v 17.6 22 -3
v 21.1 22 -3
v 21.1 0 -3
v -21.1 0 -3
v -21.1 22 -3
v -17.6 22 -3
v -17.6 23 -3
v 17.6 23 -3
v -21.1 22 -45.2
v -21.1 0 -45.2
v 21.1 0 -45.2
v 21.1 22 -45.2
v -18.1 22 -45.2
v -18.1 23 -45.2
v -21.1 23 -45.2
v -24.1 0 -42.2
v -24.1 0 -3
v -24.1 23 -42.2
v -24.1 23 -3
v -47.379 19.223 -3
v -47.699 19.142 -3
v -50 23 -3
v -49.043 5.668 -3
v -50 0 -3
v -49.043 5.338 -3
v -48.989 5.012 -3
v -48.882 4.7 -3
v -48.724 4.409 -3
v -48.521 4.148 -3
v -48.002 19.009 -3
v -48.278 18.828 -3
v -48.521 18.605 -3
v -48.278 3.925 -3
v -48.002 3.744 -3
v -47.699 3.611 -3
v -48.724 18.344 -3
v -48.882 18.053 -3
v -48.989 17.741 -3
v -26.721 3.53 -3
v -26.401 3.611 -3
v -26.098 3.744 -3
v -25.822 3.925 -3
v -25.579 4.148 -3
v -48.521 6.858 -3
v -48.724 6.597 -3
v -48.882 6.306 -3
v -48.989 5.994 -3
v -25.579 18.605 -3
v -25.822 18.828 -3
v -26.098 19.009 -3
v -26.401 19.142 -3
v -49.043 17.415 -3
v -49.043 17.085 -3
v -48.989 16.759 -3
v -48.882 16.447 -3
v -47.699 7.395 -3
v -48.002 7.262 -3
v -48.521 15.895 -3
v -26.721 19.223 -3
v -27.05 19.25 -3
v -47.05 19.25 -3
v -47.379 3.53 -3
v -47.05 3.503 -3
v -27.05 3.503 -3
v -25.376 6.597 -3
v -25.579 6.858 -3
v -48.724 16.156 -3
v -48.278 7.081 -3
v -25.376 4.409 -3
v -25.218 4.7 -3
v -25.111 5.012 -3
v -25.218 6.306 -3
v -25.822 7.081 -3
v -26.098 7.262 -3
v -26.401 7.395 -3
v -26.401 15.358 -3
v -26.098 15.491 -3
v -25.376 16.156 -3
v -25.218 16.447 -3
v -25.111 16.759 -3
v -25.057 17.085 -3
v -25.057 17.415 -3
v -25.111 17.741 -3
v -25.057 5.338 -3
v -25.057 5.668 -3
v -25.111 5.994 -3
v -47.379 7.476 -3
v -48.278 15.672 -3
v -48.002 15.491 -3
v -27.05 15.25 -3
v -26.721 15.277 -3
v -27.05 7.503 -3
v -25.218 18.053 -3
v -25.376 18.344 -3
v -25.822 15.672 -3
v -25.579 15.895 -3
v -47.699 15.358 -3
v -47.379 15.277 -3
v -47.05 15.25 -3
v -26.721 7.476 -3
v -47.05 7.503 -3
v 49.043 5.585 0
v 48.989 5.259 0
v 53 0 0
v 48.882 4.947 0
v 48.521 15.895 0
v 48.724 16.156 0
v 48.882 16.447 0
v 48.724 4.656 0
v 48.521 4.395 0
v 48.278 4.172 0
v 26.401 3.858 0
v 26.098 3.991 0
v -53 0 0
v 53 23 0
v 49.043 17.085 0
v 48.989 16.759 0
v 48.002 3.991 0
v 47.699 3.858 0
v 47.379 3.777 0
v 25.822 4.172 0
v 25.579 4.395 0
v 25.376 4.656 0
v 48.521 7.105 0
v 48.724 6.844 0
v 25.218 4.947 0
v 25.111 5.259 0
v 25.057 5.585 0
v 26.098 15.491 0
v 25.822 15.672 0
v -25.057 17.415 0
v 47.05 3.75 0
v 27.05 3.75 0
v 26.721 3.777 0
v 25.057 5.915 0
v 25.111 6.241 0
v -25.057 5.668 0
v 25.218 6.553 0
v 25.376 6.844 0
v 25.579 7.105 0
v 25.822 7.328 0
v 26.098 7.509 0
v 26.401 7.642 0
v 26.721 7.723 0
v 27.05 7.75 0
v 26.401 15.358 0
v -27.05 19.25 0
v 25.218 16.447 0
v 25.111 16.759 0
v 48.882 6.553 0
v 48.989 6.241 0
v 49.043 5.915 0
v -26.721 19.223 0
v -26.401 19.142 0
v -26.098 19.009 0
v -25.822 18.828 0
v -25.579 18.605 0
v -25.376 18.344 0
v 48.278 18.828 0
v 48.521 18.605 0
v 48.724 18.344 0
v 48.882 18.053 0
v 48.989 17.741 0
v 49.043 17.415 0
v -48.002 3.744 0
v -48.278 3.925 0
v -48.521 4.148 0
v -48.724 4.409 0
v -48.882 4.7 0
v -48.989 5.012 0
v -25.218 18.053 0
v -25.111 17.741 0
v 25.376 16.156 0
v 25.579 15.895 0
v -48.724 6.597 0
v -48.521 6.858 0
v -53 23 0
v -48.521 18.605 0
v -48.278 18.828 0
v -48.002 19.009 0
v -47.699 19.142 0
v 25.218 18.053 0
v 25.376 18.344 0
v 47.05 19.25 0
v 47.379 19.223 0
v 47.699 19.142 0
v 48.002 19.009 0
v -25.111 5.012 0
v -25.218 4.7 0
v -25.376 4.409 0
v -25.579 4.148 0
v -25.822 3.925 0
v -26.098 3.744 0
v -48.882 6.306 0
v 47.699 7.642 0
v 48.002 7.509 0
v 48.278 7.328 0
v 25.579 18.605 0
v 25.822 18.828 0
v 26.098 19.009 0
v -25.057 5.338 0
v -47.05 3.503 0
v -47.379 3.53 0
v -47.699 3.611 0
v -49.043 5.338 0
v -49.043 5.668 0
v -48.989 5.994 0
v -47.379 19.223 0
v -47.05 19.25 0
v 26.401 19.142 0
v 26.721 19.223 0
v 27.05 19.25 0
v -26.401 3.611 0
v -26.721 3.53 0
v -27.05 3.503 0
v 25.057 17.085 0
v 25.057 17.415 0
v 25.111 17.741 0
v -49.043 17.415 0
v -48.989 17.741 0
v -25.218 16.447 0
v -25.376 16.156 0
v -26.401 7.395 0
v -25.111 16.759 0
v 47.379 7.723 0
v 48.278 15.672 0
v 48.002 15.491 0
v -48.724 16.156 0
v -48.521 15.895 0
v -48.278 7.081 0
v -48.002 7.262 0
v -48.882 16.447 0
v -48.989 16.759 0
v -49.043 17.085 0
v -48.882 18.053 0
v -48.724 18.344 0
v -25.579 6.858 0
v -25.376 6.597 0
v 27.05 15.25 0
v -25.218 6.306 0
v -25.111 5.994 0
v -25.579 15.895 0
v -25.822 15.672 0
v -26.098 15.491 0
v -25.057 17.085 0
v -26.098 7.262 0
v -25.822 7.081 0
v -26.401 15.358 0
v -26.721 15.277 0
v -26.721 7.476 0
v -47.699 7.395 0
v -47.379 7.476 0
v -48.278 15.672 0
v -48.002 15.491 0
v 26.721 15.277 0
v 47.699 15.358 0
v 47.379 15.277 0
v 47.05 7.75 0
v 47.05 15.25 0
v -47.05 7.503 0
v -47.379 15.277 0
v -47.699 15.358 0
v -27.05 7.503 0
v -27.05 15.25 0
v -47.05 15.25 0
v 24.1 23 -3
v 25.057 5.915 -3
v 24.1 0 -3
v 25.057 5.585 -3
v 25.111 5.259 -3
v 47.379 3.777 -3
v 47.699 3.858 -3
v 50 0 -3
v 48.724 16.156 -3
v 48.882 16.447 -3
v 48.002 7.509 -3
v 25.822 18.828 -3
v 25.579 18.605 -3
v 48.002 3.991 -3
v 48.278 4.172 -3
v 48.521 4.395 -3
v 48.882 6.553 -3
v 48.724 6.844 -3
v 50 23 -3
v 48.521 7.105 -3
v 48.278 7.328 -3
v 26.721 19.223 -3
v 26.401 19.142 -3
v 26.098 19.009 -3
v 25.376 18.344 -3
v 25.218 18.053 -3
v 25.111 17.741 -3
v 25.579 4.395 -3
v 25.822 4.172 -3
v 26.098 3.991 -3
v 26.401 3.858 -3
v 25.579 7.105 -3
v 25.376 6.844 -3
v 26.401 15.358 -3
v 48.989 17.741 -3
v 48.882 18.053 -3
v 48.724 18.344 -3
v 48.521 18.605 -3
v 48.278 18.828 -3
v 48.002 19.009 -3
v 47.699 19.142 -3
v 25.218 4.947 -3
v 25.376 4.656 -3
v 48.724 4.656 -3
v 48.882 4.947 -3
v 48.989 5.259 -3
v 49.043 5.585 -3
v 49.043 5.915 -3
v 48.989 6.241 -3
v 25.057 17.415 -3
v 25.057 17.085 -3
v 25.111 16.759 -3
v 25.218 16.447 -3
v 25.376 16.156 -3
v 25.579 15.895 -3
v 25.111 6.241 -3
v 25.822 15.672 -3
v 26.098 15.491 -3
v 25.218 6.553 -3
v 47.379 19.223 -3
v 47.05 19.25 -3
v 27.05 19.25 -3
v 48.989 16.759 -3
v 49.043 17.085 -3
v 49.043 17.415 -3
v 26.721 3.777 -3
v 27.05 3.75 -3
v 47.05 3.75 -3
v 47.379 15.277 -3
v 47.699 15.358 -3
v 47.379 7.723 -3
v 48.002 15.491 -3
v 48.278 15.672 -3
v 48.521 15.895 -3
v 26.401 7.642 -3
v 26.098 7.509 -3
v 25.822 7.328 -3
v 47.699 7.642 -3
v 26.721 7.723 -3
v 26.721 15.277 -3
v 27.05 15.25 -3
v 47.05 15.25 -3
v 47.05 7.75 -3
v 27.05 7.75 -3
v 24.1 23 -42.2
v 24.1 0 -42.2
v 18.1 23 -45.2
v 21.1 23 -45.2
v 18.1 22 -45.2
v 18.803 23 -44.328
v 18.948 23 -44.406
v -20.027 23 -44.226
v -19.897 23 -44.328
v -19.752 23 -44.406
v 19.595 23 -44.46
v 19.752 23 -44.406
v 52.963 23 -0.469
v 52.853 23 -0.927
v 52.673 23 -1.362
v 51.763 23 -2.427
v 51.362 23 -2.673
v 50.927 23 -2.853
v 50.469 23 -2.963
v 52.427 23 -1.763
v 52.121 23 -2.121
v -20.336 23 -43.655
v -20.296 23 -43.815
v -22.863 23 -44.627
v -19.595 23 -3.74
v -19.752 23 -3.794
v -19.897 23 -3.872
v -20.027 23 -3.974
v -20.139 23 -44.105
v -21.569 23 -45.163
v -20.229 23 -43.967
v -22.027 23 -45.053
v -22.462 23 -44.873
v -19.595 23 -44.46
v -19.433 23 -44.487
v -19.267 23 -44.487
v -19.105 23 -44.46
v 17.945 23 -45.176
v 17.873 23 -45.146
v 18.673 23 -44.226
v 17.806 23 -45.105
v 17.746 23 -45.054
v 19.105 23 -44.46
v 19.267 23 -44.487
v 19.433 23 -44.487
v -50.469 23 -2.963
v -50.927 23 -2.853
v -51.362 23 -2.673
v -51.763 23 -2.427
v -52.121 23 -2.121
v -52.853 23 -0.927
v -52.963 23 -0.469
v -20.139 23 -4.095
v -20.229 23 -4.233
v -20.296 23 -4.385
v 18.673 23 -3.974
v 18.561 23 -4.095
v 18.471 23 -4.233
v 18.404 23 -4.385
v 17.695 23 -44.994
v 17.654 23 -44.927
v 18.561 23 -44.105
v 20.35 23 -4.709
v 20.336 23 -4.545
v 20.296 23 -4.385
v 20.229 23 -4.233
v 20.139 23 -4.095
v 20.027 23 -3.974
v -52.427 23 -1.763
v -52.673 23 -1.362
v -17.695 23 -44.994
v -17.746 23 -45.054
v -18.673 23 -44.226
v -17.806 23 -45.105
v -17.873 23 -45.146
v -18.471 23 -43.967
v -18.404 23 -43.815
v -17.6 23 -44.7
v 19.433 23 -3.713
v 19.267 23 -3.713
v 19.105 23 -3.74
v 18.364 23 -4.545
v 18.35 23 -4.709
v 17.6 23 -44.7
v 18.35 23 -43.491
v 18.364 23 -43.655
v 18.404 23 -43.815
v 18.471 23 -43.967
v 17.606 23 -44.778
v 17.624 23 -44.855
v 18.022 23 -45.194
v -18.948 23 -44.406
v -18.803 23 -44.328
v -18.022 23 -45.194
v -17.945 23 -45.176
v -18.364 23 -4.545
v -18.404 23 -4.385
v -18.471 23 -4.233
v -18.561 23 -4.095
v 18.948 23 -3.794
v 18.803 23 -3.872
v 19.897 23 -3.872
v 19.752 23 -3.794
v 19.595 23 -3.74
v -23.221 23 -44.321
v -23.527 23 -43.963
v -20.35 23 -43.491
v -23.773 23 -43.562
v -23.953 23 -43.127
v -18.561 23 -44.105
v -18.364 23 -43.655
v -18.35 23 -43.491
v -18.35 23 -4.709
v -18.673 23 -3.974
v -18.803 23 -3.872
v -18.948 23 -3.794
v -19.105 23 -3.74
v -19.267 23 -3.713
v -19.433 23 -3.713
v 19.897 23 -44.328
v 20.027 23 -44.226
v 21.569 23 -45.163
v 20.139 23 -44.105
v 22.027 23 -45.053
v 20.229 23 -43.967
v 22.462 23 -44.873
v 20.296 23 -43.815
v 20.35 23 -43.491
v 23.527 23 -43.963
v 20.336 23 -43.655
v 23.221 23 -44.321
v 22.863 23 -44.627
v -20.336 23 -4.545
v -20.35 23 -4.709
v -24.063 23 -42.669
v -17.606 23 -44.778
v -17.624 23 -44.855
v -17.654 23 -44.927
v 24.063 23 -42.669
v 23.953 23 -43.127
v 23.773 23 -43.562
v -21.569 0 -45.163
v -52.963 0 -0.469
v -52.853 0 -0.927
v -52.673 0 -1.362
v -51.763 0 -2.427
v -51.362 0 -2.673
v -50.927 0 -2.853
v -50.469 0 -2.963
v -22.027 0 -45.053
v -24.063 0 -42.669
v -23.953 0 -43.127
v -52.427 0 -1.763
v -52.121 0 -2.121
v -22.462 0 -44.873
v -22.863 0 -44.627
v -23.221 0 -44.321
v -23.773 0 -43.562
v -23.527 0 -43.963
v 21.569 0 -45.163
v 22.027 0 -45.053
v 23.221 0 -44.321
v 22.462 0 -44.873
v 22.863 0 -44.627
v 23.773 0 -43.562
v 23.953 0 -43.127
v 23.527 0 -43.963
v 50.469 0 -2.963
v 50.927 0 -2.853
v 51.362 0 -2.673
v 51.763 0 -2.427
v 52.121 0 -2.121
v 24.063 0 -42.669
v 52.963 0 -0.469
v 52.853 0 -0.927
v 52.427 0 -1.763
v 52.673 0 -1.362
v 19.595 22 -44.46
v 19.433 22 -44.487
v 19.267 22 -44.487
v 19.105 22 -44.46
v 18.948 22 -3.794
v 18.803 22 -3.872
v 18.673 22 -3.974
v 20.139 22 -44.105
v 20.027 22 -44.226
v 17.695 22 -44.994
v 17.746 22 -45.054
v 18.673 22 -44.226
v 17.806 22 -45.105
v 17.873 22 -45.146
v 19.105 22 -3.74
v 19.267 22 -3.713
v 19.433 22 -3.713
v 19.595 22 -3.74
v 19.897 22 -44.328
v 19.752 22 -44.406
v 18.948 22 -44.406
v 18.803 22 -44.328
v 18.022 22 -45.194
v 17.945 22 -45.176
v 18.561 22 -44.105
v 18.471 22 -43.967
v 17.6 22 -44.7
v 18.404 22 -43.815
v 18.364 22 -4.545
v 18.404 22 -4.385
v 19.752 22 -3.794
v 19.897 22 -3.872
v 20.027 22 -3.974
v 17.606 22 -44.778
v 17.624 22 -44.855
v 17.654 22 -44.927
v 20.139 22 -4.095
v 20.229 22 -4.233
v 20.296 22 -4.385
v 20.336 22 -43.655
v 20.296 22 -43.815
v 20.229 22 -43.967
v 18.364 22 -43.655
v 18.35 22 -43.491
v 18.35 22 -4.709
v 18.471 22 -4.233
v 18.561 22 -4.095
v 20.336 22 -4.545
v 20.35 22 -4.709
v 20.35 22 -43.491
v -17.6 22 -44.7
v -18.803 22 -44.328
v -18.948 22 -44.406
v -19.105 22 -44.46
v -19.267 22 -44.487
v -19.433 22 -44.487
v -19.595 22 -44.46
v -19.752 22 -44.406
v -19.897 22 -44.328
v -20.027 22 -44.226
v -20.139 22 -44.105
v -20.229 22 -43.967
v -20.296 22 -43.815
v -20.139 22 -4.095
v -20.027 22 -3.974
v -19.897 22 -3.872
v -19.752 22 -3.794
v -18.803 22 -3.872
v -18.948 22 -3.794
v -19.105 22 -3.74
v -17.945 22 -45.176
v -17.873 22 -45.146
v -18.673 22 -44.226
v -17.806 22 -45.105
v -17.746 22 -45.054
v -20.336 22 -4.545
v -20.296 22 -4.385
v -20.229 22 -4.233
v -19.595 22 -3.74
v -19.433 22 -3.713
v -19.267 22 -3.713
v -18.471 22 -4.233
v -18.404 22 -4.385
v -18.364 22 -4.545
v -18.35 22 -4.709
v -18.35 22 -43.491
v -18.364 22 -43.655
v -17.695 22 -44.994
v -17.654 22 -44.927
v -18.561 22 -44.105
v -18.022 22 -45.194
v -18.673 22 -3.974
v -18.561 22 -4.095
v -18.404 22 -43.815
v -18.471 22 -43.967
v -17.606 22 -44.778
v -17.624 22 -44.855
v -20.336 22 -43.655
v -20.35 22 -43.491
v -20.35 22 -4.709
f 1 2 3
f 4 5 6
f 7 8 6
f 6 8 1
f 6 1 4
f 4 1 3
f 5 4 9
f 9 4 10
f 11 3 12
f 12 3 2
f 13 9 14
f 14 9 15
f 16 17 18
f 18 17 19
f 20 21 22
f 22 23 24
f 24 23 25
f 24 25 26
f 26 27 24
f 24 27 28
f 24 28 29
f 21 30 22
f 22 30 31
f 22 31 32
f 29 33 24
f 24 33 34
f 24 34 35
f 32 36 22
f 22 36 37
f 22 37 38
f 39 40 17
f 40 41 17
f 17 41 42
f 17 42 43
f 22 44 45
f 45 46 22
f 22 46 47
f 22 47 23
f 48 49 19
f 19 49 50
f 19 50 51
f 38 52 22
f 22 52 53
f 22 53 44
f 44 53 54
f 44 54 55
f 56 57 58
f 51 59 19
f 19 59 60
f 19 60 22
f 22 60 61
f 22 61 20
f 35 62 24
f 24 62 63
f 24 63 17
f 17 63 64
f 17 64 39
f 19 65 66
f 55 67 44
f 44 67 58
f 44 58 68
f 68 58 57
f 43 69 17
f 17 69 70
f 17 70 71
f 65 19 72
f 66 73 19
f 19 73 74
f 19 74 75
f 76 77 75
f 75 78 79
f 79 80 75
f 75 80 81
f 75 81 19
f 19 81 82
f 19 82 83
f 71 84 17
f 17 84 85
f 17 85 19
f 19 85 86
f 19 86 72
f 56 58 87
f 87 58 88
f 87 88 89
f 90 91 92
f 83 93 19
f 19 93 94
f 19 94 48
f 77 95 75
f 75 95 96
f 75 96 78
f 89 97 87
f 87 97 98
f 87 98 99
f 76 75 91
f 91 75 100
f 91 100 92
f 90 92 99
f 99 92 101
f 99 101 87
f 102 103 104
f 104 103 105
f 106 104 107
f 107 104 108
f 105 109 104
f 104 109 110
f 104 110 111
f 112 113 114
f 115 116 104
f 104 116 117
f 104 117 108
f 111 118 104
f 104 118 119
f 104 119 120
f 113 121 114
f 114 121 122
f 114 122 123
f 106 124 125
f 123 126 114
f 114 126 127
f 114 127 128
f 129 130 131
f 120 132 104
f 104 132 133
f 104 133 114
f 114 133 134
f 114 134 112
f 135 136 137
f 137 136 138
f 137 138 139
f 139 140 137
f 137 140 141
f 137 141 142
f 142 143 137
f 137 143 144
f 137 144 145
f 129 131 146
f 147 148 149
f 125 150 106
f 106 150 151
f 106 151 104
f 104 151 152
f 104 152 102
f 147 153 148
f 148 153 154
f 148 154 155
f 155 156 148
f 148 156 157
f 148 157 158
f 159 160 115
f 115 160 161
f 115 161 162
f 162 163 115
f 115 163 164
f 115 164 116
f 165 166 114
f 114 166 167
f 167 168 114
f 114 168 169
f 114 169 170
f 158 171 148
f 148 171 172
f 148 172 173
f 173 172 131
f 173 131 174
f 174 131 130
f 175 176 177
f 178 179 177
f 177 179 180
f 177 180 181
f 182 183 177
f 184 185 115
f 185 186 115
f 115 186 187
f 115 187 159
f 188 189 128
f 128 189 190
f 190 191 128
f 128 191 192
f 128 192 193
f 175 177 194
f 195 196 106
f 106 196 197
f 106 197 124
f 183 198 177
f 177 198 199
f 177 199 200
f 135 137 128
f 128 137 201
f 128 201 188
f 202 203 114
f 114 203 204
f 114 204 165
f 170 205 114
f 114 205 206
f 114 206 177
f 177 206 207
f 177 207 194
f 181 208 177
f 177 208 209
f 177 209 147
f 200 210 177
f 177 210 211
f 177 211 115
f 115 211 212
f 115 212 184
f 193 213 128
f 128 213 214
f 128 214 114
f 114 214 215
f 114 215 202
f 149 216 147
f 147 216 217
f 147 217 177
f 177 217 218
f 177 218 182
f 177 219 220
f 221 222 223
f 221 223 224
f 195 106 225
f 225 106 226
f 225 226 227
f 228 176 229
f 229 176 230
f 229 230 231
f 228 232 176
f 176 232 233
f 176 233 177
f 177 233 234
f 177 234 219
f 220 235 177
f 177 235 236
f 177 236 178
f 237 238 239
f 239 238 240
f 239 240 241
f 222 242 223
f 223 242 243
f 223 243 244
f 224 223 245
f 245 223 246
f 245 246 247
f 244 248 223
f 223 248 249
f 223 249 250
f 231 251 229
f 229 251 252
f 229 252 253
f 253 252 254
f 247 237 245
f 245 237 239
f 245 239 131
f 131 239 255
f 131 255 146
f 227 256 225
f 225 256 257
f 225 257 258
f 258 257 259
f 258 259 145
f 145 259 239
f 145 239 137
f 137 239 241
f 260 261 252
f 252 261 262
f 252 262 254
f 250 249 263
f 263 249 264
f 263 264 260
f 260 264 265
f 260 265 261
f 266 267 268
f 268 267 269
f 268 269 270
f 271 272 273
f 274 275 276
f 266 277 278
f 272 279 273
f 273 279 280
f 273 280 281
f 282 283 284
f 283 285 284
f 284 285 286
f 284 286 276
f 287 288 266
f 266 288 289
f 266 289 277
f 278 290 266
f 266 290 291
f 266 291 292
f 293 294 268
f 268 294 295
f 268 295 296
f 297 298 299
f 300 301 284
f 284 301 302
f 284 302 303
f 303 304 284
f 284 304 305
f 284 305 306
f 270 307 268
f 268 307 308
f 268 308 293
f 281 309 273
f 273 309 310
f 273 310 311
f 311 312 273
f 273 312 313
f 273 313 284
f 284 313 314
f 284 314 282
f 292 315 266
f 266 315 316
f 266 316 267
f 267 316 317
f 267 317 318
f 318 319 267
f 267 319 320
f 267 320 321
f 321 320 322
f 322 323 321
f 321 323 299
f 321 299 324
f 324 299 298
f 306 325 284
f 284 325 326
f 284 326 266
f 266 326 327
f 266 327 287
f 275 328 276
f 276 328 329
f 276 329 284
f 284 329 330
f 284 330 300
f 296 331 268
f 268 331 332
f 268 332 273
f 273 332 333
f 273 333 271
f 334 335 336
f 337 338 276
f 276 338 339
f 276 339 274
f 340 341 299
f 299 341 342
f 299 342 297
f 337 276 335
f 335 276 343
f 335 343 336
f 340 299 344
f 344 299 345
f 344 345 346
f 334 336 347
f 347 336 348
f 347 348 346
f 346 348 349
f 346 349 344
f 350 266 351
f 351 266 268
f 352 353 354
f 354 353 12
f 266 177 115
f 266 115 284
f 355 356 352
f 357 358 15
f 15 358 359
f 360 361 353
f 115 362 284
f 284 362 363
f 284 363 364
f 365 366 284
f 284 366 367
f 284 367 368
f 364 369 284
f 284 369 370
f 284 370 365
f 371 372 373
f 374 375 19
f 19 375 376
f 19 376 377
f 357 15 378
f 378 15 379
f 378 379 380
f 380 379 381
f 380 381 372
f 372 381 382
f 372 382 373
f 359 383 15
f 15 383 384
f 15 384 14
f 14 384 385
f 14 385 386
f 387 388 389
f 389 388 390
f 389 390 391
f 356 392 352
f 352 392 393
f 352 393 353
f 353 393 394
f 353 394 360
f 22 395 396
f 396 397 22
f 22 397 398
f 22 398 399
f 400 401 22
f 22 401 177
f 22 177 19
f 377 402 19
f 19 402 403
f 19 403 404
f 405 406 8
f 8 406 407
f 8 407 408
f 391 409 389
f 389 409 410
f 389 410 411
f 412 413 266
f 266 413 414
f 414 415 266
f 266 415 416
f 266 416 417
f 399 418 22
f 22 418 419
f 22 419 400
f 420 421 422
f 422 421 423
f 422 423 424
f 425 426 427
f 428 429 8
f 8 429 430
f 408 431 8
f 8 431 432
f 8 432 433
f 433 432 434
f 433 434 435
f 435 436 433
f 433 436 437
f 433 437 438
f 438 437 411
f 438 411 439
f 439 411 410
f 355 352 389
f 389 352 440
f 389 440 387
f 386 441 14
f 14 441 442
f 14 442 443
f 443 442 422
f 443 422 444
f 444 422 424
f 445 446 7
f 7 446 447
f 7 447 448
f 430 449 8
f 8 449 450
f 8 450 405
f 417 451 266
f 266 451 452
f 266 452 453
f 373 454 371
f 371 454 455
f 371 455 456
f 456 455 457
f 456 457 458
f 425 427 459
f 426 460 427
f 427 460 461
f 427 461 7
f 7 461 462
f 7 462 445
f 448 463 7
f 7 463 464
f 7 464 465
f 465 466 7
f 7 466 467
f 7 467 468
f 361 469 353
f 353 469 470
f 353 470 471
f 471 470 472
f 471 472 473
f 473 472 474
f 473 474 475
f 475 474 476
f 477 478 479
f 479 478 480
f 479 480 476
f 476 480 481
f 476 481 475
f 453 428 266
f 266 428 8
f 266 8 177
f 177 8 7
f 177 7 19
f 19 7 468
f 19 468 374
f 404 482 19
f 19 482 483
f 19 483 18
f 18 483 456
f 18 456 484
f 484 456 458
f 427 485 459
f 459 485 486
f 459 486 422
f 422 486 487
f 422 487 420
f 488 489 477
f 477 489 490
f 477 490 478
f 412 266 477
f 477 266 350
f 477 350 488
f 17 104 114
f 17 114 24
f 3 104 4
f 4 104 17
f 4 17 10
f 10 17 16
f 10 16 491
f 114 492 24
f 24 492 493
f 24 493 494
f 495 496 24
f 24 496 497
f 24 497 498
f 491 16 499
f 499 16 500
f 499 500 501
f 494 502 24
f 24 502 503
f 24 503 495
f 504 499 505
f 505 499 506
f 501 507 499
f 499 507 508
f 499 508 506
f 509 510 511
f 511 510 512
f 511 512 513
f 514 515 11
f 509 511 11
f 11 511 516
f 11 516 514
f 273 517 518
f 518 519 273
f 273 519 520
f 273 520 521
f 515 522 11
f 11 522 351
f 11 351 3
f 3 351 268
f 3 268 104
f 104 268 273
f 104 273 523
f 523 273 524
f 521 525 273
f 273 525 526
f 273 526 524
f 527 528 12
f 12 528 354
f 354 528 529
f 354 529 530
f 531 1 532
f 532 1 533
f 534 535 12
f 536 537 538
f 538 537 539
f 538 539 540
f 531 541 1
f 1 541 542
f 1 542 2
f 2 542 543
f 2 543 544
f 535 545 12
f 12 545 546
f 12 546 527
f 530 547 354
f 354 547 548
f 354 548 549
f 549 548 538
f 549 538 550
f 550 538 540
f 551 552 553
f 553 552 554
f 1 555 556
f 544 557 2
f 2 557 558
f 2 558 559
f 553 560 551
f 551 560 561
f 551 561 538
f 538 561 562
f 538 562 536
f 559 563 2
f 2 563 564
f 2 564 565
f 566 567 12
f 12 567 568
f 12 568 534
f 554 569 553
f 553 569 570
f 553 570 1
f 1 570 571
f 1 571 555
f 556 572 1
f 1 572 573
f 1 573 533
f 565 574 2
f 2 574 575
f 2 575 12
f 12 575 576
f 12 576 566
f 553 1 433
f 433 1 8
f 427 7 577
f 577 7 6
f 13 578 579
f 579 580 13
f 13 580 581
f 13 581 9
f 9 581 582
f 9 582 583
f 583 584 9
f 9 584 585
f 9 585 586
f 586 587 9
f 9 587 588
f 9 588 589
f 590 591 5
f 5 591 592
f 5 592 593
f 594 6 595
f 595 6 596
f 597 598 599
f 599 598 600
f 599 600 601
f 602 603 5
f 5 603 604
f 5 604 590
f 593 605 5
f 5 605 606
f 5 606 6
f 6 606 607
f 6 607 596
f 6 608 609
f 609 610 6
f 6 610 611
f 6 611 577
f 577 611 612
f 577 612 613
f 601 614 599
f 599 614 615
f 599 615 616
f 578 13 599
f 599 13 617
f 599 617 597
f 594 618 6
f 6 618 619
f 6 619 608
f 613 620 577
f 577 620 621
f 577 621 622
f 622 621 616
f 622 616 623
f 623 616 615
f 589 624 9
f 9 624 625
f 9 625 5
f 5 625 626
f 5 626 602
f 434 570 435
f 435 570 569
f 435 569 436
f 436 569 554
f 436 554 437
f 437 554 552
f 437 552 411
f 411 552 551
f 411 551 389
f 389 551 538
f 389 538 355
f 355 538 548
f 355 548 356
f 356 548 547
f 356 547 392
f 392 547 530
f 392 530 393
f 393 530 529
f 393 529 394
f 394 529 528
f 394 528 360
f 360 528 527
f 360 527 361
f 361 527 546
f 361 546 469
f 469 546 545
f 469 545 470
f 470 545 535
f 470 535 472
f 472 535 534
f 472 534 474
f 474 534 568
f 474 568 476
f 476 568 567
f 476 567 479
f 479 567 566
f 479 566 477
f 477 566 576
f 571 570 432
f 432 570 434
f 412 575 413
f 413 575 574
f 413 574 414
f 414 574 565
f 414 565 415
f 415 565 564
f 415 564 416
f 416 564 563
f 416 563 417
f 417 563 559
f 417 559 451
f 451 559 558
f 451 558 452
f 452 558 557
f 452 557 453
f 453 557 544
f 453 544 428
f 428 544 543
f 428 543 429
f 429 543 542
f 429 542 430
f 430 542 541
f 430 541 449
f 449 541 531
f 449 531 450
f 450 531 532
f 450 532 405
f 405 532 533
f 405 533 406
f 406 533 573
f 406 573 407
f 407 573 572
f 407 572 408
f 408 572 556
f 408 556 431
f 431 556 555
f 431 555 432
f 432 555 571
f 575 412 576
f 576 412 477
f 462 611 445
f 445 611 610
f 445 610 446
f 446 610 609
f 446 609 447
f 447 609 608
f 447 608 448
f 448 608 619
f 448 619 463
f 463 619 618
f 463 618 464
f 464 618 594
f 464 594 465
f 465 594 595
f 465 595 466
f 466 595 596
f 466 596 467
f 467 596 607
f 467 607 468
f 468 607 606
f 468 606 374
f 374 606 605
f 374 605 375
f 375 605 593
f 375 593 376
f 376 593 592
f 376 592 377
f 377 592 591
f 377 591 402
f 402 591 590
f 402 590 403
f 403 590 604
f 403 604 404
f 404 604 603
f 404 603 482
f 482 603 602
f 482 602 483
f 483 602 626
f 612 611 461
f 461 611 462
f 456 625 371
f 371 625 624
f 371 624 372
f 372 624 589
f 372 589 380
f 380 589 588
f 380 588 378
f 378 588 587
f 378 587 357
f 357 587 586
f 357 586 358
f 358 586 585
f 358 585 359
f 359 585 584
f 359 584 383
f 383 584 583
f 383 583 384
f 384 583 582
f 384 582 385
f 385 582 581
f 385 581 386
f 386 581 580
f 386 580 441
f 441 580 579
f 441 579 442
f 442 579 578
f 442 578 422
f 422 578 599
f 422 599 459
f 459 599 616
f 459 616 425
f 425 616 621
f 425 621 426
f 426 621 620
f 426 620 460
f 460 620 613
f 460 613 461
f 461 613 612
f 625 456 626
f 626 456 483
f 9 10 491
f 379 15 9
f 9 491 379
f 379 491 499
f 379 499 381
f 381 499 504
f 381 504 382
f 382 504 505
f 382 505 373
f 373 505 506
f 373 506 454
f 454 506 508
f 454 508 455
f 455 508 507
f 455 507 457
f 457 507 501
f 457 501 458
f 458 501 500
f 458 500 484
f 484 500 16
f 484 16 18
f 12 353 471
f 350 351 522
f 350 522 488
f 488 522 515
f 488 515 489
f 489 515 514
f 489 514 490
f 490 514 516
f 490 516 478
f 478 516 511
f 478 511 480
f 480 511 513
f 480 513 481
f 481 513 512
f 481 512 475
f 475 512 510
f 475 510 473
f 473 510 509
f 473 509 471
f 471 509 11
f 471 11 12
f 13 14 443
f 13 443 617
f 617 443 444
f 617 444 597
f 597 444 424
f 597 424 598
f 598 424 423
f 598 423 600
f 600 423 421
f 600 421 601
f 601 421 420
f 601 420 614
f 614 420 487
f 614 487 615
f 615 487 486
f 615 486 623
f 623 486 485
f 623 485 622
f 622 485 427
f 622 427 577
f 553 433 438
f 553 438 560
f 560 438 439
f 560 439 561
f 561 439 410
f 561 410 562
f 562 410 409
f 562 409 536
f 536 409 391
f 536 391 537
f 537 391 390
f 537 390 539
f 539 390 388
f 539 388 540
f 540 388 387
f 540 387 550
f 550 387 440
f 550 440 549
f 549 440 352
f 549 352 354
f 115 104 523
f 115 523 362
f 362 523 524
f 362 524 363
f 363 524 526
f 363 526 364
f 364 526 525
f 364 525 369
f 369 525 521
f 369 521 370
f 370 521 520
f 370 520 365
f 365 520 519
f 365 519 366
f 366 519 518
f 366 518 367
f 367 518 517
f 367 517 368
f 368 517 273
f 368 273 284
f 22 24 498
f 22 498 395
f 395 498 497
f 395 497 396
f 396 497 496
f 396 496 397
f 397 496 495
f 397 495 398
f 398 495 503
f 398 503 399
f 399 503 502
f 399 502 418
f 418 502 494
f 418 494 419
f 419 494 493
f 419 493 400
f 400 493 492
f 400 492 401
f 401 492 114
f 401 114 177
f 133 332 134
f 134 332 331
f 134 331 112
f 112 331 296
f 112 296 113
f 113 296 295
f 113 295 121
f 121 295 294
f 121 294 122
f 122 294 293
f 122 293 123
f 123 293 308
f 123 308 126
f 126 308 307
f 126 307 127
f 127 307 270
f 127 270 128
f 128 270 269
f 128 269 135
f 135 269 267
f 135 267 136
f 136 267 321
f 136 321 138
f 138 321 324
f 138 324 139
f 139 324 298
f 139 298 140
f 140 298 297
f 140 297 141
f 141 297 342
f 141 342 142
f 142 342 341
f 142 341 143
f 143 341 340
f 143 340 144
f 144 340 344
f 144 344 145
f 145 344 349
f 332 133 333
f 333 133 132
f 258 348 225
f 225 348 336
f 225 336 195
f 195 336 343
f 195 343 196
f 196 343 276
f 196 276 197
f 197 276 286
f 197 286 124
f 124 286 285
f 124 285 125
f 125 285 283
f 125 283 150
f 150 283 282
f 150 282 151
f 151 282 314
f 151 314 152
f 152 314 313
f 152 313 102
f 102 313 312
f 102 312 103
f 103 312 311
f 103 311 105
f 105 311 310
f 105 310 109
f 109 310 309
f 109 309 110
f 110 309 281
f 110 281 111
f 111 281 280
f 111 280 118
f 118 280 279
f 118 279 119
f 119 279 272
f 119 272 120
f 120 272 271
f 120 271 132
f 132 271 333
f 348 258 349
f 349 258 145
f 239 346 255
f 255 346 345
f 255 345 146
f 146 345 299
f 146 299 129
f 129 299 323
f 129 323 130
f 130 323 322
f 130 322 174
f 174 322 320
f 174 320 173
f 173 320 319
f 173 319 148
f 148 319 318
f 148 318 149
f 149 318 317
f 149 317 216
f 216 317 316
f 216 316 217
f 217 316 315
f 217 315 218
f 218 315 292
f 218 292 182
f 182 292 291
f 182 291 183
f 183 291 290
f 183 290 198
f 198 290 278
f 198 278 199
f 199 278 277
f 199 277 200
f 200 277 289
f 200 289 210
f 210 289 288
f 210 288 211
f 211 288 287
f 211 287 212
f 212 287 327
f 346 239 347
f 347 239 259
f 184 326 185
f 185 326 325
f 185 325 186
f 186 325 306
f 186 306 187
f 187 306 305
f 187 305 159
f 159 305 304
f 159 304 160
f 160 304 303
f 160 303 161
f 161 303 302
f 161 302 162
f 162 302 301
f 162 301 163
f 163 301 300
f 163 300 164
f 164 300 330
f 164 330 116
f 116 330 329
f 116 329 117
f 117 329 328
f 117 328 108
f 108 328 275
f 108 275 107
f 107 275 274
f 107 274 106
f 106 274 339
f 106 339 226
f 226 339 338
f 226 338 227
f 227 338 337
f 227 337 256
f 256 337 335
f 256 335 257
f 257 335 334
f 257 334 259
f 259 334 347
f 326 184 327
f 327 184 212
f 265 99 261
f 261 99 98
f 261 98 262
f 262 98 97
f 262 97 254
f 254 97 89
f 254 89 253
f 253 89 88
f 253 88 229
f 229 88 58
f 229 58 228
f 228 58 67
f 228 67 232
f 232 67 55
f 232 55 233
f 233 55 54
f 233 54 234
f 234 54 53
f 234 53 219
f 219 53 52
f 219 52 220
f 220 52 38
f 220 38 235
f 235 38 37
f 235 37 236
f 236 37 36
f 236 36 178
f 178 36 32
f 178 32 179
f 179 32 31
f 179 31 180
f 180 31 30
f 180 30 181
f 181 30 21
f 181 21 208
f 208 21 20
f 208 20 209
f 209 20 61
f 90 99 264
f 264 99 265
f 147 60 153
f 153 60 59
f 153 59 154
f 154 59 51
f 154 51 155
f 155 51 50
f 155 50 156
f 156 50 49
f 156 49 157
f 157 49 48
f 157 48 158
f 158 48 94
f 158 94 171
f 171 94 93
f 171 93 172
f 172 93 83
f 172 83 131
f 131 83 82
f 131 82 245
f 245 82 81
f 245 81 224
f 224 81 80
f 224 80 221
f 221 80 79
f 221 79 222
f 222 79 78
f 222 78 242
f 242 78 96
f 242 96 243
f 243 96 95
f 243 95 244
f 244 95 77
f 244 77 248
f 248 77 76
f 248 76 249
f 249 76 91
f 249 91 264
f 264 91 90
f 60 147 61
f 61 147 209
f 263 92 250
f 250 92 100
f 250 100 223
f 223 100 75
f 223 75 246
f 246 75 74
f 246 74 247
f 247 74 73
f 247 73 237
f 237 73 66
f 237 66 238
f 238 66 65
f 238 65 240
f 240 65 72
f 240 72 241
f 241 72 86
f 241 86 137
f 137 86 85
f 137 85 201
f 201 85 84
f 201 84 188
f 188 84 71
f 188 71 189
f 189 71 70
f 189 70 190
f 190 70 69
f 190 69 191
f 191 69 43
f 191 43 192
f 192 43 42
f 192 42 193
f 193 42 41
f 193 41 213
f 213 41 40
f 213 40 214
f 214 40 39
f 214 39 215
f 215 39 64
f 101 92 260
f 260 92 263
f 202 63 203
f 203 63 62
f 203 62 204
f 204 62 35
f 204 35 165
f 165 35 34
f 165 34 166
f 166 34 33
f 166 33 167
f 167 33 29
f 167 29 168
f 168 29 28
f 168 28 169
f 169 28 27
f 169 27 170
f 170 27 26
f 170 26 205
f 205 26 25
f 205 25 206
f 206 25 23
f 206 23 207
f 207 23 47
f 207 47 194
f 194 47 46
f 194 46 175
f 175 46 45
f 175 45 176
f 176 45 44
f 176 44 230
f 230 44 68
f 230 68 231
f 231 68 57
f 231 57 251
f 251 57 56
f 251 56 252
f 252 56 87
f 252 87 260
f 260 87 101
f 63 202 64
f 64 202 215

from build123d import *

# Parameters (mm, degrees)
BOSS_EXTRUDE5_DEPTH = 23
SKETCH3_W           = 3.5
SKETCH3_H           = 1
BOSS_EXTRUDE7_DEPTH = 42.2
CUT_EXTRUDE3_DEPTH  = 42.2
CUT_EXTRUDE4_DEPTH  = 42.2
FILLET1_R           = 3
FILLET2_R           = 3
FILLET3_R           = 0.5
FILLET4_R           = 0.5
FILLET5_R           = 3
FILLET6_R           = 3
CUT_EXTRUDE5_DEPTH  = 42.2
CUT_EXTRUDE6_DEPTH  = 42.2
CUT_EXTRUDE7_DEPTH  = 42.2


with BuildPart() as part:
    # Sketch1 → Boss-Extrude5 (new body)
    with BuildSketch(Plane(origin=(0, 0, 0), x_dir=(1, 0, 0), z_dir=(0, 1, 0))):
        Polygon((-53, 0), (53, 0), (53, 3), (24.1, 3), (24.1, 45.2), (21.1, 45.2), (21.1, 3), (-21.1, 3), (-21.1, 45.2), (-24.1, 45.2), (-24.1, 3), (-53, 3), align=None)
    extrude(amount=BOSS_EXTRUDE5_DEPTH)

    # Sketch3 → Boss-Extrude7 (add)
    with BuildSketch(Plane(origin=(0, 0, -3), x_dir=(-1, 0, 0), z_dir=(0, 0, -1))):
        with Locations((-19.35, 22.5)):
            Rectangle(SKETCH3_W, SKETCH3_H)
        with Locations((19.35, 22.5)):
            Rectangle(SKETCH3_W, SKETCH3_H)
    extrude(amount=BOSS_EXTRUDE7_DEPTH)

    # Sketch5 → Cut-Extrude3 (cut)
    with BuildSketch(Plane(origin=(0, 22, 0), x_dir=(-1, 0, 0), z_dir=(0, -1, 0))):
        with BuildLine():
            Line((-18.35, 43.490720045), (-18.35, 4.709279955))
            ThreePointArc((-18.35, 4.709279955), (-19.35, 3.709279955), (-20.35, 4.709279955))
            Line((-20.35, 4.709279955), (-20.35, 43.490720045))
            ThreePointArc((-20.35, 43.490720045), (-19.35, 44.490720045), (-18.35, 43.490720045))
        make_face()
    extrude(amount=-CUT_EXTRUDE3_DEPTH, mode=Mode.SUBTRACT)

    # Sketch5<4> → Cut-Extrude4 (cut)
    with BuildSketch(Plane(origin=(0, 22, 0), x_dir=(-1, 0, 0), z_dir=(0, -1, 0))):
        with BuildLine():
            Line((18.35, 4.709279955), (18.35, 43.490720045))
            ThreePointArc((18.35, 43.490720045), (19.35, 44.490720045), (20.35, 43.490720045))
            Line((20.35, 43.490720045), (20.35, 4.709279955))
            ThreePointArc((20.35, 4.709279955), (19.35, 3.709279955), (18.35, 4.709279955))
        make_face()
    extrude(amount=-CUT_EXTRUDE4_DEPTH, mode=Mode.SUBTRACT)

    # Fillet1
    fillet1_edges = [part.edges().sort_by_distance(p)[0] for p in [
        (-24.1, 11.5, -45.2),
    ]]
    fillet(fillet1_edges, radius=FILLET1_R)

    # Fillet2
    fillet2_edges = [part.edges().sort_by_distance(p)[0] for p in [
        (24.1, 11.5, -45.2),
    ]]
    fillet(fillet2_edges, radius=FILLET2_R)

    # Fillet3
    fillet3_edges = [part.edges().sort_by_distance(p)[0] for p in [
        (-17.6, 22.5, -45.2),
    ]]
    fillet(fillet3_edges, radius=FILLET3_R)

    # Fillet4
    fillet4_edges = [part.edges().sort_by_distance(p)[0] for p in [
        (17.6, 22.5, -45.2),
    ]]
    fillet(fillet4_edges, radius=FILLET4_R)

    # Fillet5
    fillet5_edges = [part.edges().sort_by_distance(p)[0] for p in [
        (53, 11.5, -3),
    ]]
    fillet(fillet5_edges, radius=FILLET5_R - 0.0001)  # a hair under: the kernel refuses the full size

    # Fillet6
    fillet6_edges = [part.edges().sort_by_distance(p)[0] for p in [
        (-53, 11.5, -3),
    ]]
    fillet(fillet6_edges, radius=FILLET6_R - 0.0001)  # a hair under: the kernel refuses the full size

    # Sketch6 → Cut-Extrude5 (cut)
    with BuildSketch(Plane(origin=(0, 0, -3), x_dir=(-1, 0, 0), z_dir=(0, 0, -1))):
        with BuildLine():
            Line((-27.05, 15.25), (-47.05, 15.25))
            ThreePointArc((-47.05, 15.25), (-49.05, 17.25), (-47.05, 19.25))
            Line((-47.05, 19.25), (-27.05, 19.25))
            ThreePointArc((-27.05, 19.25), (-25.05, 17.25), (-27.05, 15.25))
        make_face()
        with BuildLine():
            Line((-27.05, 3.75), (-47.05, 3.75))
            ThreePointArc((-47.05, 3.75), (-49.05, 5.75), (-47.05, 7.75))
            Line((-47.05, 7.75), (-27.05, 7.75))
            ThreePointArc((-27.05, 7.75), (-25.05, 5.75), (-27.05, 3.75))
        make_face()
    extrude(amount=-CUT_EXTRUDE5_DEPTH, mode=Mode.SUBTRACT)

    # Sketch7 → Cut-Extrude6 (cut)
    with BuildSketch(Plane(origin=(0, 0, -3), x_dir=(-1, 0, 0), z_dir=(0, 0, -1))):
        with BuildLine():
            Line((47.05, 15.25), (27.05, 15.25))
            ThreePointArc((27.05, 15.25), (25.05, 17.25), (27.05, 19.25))
            Line((27.05, 19.25), (47.05, 19.25))
            ThreePointArc((47.05, 19.25), (49.05, 17.25), (47.05, 15.25))
        make_face()
    extrude(amount=-CUT_EXTRUDE6_DEPTH, mode=Mode.SUBTRACT)

    # Sketch7<3> → Cut-Extrude7 (cut)
    with BuildSketch(Plane(origin=(0, 0, -3), x_dir=(-1, 0, 0), z_dir=(0, 0, -1))):
        with BuildLine():
            Line((27.05, 7.503040911), (47.05, 7.503040911))
            ThreePointArc((47.05, 7.503040911), (49.05, 5.503040911), (47.05, 3.503040911))
            Line((47.05, 3.503040911), (27.05, 3.503040911))
            ThreePointArc((27.05, 3.503040911), (25.05, 5.503040911), (27.05, 7.503040911))
        make_face()
    extrude(amount=-CUT_EXTRUDE7_DEPTH, mode=Mode.SUBTRACT)


solid = part.part
